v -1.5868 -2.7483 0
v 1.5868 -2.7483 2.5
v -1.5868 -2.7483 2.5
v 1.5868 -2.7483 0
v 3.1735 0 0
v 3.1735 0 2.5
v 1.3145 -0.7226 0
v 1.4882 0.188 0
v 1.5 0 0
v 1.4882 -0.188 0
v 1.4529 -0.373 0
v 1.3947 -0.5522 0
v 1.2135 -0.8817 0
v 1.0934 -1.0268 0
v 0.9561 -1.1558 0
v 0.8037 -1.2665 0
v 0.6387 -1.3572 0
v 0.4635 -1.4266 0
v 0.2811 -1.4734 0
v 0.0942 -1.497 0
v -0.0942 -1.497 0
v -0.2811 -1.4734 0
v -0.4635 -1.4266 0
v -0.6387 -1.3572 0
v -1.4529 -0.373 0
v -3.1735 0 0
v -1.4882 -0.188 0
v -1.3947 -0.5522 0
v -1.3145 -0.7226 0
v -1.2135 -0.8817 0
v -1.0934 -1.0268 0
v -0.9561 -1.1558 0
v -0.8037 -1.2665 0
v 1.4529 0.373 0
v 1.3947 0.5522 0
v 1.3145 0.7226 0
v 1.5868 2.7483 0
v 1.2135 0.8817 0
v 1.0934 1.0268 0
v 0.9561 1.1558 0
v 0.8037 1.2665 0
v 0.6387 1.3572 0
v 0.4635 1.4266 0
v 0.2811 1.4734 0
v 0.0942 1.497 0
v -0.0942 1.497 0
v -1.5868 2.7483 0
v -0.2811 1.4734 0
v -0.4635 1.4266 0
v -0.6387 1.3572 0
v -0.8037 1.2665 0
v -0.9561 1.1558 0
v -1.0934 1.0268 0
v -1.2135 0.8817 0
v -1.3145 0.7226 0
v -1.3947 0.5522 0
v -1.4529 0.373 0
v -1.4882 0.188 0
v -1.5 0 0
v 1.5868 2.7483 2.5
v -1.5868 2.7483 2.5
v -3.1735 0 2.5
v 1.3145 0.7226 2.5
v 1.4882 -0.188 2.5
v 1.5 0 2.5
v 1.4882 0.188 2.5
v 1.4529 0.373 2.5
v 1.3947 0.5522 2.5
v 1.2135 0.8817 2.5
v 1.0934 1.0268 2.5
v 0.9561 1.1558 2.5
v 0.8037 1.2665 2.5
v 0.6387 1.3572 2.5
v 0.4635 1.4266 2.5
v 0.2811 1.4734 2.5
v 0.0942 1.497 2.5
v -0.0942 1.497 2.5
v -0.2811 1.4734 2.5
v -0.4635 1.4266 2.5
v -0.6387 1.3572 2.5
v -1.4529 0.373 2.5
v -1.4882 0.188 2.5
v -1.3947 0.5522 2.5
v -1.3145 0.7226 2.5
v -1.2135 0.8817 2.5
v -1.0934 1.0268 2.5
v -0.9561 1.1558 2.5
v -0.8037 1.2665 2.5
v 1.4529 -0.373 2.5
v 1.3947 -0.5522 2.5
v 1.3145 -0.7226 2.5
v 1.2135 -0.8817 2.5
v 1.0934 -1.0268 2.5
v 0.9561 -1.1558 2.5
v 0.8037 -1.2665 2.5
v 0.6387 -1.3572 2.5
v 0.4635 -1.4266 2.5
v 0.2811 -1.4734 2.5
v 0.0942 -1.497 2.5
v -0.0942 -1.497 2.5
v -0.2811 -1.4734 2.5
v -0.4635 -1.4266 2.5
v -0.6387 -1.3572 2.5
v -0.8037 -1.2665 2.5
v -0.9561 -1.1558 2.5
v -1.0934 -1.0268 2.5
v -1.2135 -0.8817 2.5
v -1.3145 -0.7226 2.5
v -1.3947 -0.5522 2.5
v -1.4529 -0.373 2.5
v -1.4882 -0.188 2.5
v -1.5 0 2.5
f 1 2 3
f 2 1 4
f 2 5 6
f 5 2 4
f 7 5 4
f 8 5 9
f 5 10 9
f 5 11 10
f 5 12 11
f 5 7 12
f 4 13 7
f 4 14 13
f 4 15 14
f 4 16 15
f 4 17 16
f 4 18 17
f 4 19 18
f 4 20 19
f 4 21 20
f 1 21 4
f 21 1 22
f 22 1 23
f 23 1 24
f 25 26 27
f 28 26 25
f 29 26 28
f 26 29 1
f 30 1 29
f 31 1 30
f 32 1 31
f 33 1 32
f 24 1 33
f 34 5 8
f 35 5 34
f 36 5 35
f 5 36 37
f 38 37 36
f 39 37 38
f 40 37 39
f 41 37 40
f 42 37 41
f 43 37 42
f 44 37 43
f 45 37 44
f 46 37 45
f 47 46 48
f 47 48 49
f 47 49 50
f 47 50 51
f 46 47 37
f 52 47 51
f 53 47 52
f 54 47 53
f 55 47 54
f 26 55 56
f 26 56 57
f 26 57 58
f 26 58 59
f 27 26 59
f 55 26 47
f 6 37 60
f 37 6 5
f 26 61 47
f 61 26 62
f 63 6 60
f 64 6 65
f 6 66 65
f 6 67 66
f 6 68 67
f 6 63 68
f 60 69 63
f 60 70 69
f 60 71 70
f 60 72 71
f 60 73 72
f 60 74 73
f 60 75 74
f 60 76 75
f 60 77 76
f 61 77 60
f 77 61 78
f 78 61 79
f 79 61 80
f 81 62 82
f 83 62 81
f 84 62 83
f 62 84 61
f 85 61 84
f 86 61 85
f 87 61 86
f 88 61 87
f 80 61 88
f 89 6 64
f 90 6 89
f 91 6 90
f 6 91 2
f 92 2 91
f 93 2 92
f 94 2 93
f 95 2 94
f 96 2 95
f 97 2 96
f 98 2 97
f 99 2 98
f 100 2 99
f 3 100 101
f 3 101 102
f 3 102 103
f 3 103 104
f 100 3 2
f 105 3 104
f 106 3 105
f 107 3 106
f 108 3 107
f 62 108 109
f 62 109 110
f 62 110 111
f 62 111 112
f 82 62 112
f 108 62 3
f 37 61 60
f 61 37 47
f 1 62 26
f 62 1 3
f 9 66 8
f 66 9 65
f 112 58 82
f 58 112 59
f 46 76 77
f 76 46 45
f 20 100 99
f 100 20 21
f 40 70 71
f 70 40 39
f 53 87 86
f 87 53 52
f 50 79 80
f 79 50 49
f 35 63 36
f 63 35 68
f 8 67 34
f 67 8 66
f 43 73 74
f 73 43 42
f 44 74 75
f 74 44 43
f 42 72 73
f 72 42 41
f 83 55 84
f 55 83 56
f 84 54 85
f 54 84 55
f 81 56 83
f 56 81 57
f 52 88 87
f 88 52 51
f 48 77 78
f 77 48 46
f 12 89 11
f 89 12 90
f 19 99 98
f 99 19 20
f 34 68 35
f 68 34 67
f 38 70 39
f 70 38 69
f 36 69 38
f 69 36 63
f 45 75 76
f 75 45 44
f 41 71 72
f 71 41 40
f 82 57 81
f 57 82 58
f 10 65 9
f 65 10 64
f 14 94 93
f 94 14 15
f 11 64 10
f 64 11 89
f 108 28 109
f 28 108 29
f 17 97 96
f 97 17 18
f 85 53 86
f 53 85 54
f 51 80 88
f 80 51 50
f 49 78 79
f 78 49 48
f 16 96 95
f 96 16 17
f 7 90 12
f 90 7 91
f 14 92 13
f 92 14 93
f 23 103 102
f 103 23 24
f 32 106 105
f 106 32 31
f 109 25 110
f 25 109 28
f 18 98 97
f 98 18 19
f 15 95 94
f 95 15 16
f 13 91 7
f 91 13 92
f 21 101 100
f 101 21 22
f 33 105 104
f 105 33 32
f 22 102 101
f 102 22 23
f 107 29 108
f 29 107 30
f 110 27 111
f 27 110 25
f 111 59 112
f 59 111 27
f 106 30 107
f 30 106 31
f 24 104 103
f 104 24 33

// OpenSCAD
$fn = 50;


difference() {
	union() {
		translate(v = [0, 0, 0]) {
			rotate(a = [0, 0, 0]) {
				difference() {
					union() {
						linear_extrude(height = 2.5000000000) {
							polygon(points = [[3.1735000000, 0.0000000000], [1.5867500000, 2.7483316189], [-1.5867500000, 2.7483316189], [-3.1735000000, 0.0000000000], [-1.5867500000, -2.7483316189], [1.5867500000, -2.7483316189]]);
						}
					}
					union();
				}
			}
		}
	}
	union() {
		cylinder(h = 100, r = 1.5000000000);
	}
}
